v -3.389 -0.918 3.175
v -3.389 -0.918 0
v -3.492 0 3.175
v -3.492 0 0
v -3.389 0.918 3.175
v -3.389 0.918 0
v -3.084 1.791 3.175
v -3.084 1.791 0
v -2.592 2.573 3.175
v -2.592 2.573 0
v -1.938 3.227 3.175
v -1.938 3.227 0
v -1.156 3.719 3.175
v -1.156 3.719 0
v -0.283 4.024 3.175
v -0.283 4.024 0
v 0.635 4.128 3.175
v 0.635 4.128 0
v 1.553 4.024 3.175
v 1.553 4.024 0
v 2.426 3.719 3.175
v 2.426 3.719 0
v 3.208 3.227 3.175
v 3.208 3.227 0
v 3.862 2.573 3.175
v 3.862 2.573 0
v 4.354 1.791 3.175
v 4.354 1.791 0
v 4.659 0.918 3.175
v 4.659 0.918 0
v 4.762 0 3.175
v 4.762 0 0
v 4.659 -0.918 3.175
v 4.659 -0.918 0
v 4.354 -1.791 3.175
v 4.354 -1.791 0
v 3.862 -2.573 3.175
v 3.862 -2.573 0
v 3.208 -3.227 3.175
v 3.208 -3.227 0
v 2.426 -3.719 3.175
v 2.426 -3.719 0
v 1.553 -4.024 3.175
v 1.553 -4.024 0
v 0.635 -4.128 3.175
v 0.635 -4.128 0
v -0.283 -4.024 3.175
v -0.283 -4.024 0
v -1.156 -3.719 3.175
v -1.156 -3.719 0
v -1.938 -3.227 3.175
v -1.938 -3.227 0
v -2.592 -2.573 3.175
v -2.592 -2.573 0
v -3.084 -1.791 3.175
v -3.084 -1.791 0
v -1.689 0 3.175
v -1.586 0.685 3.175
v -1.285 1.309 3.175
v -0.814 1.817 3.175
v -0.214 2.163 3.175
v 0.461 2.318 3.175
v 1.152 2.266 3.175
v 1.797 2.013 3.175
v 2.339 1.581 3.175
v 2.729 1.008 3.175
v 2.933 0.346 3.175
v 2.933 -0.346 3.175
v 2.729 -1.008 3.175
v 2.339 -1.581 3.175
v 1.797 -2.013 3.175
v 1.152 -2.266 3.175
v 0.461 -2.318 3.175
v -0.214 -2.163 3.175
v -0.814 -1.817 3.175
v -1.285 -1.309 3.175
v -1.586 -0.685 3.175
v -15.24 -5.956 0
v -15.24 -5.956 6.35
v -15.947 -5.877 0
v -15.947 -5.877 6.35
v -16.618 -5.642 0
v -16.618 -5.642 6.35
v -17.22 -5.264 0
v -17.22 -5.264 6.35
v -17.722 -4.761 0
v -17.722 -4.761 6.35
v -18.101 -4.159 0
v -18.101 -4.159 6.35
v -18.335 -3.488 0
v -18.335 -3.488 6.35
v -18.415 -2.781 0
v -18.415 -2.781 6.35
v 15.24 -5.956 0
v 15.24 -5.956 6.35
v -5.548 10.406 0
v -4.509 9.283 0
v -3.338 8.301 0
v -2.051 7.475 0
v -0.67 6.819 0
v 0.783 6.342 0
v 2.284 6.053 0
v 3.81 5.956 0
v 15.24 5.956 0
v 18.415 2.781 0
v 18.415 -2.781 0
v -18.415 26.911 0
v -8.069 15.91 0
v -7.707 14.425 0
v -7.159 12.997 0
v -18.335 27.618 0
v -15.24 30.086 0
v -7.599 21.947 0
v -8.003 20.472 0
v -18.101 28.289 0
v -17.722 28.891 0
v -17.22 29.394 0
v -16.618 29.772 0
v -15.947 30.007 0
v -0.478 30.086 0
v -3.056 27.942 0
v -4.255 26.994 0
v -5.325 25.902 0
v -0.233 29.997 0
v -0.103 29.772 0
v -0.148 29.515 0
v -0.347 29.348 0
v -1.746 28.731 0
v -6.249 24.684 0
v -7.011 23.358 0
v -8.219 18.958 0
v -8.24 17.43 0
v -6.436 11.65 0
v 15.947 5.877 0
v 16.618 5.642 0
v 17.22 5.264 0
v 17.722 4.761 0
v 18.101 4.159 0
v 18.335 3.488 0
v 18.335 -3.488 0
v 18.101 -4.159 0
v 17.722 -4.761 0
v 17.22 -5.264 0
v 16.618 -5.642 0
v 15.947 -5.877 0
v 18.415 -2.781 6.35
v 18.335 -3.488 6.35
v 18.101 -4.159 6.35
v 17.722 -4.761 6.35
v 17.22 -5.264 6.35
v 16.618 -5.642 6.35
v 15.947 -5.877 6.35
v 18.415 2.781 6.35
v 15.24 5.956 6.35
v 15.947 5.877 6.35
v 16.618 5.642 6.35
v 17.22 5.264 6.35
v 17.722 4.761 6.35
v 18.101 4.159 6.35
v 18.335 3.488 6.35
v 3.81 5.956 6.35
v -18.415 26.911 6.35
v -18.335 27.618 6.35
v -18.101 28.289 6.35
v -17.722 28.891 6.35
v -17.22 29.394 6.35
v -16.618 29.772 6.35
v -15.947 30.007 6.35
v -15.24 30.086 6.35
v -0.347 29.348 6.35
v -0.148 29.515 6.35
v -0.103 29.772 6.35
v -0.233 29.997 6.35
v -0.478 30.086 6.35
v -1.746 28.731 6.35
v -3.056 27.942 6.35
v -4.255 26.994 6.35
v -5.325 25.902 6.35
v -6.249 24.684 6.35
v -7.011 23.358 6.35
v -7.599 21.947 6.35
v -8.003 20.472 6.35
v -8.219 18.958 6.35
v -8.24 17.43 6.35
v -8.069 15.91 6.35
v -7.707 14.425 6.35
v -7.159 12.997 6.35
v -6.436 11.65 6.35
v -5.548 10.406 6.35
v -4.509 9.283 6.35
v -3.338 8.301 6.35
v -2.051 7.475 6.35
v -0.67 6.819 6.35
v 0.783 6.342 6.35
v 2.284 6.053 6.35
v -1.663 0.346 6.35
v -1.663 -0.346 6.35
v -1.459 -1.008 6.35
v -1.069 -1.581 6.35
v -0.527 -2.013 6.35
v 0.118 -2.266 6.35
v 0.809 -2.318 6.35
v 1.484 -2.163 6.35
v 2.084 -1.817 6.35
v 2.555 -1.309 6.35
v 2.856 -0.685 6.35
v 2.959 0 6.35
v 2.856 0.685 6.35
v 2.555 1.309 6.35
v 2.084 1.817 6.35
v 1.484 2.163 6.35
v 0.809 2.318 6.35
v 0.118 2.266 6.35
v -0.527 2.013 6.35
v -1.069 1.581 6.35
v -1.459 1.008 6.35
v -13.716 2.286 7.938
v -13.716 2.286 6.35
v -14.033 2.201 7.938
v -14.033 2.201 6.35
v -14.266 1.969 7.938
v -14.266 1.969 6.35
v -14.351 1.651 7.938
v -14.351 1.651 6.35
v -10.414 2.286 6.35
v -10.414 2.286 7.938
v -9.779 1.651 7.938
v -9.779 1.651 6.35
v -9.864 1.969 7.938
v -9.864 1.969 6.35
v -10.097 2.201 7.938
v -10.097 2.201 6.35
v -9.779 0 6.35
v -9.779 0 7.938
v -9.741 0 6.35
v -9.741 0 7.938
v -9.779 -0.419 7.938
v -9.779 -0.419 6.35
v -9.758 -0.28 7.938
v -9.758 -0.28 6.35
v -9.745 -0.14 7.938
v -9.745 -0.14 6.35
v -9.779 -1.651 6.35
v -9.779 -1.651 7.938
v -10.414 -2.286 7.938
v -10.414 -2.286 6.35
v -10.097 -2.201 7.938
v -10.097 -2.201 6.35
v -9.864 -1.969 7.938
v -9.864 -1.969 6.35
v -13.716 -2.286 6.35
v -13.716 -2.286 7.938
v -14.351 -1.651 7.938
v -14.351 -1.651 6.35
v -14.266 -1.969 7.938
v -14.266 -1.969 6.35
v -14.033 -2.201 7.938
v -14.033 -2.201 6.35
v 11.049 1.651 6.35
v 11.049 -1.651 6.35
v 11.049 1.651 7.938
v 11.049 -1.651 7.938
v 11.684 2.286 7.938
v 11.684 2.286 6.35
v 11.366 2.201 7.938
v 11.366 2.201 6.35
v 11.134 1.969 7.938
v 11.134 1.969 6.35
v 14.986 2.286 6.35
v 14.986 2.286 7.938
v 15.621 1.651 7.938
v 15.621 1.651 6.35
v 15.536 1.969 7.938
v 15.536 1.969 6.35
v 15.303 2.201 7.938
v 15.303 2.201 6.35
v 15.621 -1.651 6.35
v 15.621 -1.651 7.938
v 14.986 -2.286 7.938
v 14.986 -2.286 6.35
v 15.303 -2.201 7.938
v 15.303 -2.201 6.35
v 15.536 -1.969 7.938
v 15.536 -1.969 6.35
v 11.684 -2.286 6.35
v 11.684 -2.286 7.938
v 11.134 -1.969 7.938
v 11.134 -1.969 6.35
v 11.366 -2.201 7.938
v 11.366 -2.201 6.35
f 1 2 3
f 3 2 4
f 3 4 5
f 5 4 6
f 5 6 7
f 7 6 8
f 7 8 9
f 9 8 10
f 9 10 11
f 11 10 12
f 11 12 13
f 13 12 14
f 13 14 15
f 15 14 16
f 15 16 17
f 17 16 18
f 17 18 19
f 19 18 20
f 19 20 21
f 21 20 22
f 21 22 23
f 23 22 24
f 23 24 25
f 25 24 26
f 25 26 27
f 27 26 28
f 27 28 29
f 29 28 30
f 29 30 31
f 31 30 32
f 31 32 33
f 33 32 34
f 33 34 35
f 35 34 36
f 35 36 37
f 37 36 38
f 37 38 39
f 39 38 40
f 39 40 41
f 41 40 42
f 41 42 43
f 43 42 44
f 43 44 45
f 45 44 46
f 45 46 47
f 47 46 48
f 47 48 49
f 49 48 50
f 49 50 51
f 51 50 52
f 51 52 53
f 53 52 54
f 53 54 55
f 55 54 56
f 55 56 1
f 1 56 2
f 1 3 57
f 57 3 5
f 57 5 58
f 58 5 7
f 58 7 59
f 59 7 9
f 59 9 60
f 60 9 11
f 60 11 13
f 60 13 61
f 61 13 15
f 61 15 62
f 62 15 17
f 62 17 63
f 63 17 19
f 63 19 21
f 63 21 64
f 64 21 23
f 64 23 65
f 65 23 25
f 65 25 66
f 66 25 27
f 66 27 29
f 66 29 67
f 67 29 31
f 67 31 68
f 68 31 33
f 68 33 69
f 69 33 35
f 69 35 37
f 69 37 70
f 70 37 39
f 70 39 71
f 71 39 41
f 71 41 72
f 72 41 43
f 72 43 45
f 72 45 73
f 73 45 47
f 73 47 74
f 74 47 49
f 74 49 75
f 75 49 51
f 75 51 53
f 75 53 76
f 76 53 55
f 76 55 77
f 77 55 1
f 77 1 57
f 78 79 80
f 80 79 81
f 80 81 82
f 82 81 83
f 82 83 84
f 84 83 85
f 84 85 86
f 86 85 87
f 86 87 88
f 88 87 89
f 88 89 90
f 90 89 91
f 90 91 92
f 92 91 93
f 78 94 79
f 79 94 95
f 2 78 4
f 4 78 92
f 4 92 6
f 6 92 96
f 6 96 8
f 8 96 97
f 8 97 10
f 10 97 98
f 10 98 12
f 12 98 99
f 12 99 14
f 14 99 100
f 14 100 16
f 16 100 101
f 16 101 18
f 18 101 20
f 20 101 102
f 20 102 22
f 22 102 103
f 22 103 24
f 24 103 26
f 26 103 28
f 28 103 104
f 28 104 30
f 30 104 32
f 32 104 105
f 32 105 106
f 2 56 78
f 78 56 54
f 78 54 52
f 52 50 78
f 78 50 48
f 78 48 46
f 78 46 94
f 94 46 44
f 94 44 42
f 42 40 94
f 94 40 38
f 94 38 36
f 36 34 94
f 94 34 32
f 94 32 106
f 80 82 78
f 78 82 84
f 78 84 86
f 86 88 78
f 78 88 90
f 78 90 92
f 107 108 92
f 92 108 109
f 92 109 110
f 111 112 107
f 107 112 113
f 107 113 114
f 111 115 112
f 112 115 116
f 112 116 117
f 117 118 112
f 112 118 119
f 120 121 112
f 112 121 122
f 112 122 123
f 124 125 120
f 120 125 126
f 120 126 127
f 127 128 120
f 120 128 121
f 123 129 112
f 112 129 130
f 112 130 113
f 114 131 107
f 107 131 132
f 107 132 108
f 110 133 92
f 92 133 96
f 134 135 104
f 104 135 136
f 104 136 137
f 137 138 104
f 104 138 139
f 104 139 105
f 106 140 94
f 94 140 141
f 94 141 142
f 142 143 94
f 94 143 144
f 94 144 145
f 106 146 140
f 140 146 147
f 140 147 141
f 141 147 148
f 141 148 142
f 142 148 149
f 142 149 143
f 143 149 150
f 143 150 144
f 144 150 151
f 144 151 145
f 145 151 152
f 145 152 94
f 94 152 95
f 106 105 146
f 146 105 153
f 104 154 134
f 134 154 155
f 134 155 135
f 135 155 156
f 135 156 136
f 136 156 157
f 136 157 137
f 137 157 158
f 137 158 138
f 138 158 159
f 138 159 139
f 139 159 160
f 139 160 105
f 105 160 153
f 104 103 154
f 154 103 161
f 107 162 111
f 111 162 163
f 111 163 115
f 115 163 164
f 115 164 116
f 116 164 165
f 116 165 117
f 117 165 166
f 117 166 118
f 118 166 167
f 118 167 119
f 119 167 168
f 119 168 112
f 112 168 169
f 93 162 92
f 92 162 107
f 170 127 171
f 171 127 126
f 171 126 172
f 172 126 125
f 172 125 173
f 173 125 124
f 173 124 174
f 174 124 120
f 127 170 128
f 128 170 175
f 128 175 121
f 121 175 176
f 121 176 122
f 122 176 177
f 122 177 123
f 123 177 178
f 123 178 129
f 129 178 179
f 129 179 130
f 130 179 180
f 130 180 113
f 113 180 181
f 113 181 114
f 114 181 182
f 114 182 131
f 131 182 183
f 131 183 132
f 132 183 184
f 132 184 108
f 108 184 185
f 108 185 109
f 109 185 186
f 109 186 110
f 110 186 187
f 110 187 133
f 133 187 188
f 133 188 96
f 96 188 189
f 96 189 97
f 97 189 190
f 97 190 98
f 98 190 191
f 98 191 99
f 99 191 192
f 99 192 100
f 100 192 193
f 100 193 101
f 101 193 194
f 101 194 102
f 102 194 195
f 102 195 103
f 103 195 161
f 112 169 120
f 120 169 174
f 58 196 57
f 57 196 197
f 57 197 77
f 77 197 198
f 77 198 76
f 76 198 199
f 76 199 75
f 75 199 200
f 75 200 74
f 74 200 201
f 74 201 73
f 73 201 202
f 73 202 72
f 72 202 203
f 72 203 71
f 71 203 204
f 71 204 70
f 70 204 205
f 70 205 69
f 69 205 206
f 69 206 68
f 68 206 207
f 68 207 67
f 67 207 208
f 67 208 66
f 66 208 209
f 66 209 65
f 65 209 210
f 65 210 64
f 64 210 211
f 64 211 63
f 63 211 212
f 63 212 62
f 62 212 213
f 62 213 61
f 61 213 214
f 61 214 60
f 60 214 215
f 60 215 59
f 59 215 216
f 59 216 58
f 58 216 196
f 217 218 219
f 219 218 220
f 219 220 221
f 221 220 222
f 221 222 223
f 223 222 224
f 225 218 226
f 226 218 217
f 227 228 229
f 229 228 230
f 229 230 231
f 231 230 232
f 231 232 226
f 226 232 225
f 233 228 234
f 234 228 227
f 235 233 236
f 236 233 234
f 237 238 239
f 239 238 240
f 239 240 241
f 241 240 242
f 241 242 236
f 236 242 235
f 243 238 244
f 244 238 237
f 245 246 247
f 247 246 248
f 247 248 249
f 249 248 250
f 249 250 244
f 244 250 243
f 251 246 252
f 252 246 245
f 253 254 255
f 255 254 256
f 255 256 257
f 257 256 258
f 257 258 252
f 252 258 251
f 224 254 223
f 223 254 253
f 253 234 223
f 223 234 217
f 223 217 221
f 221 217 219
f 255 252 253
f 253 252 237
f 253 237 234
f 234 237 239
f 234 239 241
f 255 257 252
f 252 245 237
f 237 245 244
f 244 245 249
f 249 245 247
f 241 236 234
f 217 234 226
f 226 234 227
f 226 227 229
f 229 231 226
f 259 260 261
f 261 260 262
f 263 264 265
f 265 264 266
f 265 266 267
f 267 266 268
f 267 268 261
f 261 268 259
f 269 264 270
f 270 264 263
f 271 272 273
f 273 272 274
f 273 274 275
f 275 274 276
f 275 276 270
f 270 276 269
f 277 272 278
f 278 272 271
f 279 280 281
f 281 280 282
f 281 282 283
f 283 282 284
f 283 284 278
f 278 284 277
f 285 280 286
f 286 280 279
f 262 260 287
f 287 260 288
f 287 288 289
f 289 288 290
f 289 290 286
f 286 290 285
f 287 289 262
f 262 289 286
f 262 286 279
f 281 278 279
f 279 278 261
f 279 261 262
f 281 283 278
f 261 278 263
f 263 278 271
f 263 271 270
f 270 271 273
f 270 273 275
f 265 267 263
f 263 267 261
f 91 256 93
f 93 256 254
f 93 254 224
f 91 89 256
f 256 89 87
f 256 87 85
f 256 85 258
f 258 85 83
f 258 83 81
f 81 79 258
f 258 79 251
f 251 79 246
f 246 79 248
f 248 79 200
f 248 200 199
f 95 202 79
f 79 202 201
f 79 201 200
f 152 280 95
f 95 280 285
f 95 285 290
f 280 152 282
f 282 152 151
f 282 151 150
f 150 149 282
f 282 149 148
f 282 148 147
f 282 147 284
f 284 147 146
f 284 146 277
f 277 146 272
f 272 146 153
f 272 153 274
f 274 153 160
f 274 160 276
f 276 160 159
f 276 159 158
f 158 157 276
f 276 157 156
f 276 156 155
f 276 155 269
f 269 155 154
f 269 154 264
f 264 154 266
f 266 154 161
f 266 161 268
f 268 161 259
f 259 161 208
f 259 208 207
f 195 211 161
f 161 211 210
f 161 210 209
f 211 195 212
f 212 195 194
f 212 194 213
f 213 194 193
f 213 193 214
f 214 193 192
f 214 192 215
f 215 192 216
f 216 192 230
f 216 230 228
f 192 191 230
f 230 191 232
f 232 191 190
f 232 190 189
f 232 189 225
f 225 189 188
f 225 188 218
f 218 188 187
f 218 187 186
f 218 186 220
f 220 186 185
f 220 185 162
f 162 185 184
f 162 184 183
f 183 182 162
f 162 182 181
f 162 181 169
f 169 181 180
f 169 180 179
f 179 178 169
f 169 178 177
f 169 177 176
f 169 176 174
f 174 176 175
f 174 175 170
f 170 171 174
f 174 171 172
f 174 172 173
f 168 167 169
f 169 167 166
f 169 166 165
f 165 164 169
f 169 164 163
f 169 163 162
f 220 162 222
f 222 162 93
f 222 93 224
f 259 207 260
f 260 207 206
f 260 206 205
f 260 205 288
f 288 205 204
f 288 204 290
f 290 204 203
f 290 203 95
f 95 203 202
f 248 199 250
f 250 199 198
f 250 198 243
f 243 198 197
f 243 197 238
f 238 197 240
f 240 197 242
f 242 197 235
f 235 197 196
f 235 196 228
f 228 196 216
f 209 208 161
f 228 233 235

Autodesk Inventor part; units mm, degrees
ref_plane "YZ Plane" through (0, 0, 0) normal (1, 0, 0) x (0, 1, 0)
ref_plane "XZ Plane" through (0, 0, 0) normal (0, 1, 0) x (-1, 0, 0)
ref_plane "XY Plane" through (0, 0, 0) normal (0, 0, 1) x (1, 0, 0)
sketch "Sketch1" plane through (0, 0, 0) normal (0, 0, 1) x (1, 0, 0)
  line L0 (-18.415, 5.9563) -> (18.415, 5.9563)
  line L1 (18.415, 5.9563) -> (18.415, -5.9563)
  line L2 (18.415, -5.9563) -> (-18.415, -5.9563)
  line L3 (-18.415, -5.9563) -> (-18.415, 5.9563)
  line L4 (-18.415, 5.9563) -> (18.415, -5.9563) construction
  line L5 (18.415, 5.9563) -> (-18.415, -5.9563) construction
  point P0 (0, 0)
  dimension "d0" = 36.83
  dimension "d1" = 11.9126
extrude "Extrusion1" add sketch "Sketch1" along normal blind 6.35
sketch "Sketch2" plane through (0, 0, 6.35) normal (0, 0, 1) x (1, 0, 0)
  line L0 (-18.415, 5.9563) -> (-18.415, -5.9563) projected
  line L1 (-18.415, 0) -> (18.415, 0)
  line L2 (18.415, -5.9563) -> (18.415, 5.9563) projected
  line L3 (-18.415, 0) -> (-20.6375, 0)
  line L4 (-18.415, 0) -> (-12.065, 0)
  circle A0 centre (-12.065, 0) radius 2.3241
  circle A1 centre (0.635, 0) radius 2.3241
  circle A2 centre (13.335, 0) radius 2.3241
  line L5 (-13.716, 2.286) -> (-10.414, 2.286)
  line L6 (-9.779, 1.651) -> (-9.779, -1.651)
  line L7 (-10.414, -2.286) -> (-13.716, -2.286)
  line L8 (-14.351, -1.651) -> (-14.351, 1.651)
  line L9 (-14.351, 2.286) -> (-9.779, -2.286) construction
  line L10 (-9.779, 2.286) -> (-14.351, -2.286) construction
  line L11 (11.684, 2.286) -> (14.986, 2.286)
  line L12 (15.621, 1.651) -> (15.621, -1.651)
  line L13 (14.986, -2.286) -> (11.684, -2.286)
  line L14 (11.049, -1.651) -> (11.049, 1.651)
  line L15 (11.049, 2.286) -> (15.621, -2.286) construction
  line L16 (15.621, 2.286) -> (11.049, -2.286) construction
  arc A3 (-13.716, 2.286) -> (-14.351, 1.651) centre (-13.716, 1.651) ccw
  arc A4 (-9.779, 1.651) -> (-10.414, 2.286) centre (-10.414, 1.651) ccw
  arc A5 (-10.414, -2.286) -> (-9.779, -1.651) centre (-10.414, -1.651) ccw
  arc A6 (-14.351, -1.651) -> (-13.716, -2.286) centre (-13.716, -1.651) ccw
  arc A7 (11.684, 2.286) -> (11.049, 1.651) centre (11.684, 1.651) ccw
  arc A8 (15.621, 1.651) -> (14.986, 2.286) centre (14.986, 1.651) ccw
  arc A9 (14.986, -2.286) -> (15.621, -1.651) centre (14.986, -1.651) ccw
  arc A10 (11.049, -1.651) -> (11.684, -2.286) centre (11.684, -1.651) ccw
  point P0 (0, 0)
  point P1 (-9.779, -0.4191)
  point P2 (-9.7409, 0)
  point P3 (-9.779, 0)
  dimension "d5" = 6.35
  dimension "d6" = 4.6482
  dimension "d9" = 12.7
  dimension "d16" = 4.572
  dimension "d17" = 4.572
  dimension "d18" = 4.572
  dimension "d19" = 4.572
  dimension "d20" = 0.635
extrude "Extrusion2" add sketch "Sketch2" along normal blind 1.5875 contours L8 A0 L5 L6 L1 | L1 L6 A0 L7 L8 | L8 A3 L5 A0 | A0 L7 A6 L8 | L1 A0 L6 | L5 A4 L6 A0 | A0 L6 A5 L7 | L14 A2 L11 L12 L1 | L1 L12 A2 L13 L14 | L14 A7 L11 A2 | A2 L13 A10 L14 | A2 L11 A8 L12 | L12 A9 L13 A2 picked at (-9.772, -0.2331)
extrude "Extrusion3" cut sketch "Sketch2" against normal through all contours A1 L1 | L1 A1
sketch "Sketch9" plane through (-18.415, 5.9563, 0) normal (0, 1, 0) x (1, 0, 0)
  line L0 (0, 0) -> (36.83, 0) projected
  line L1 (0, -6.35) -> (36.83, -6.35) projected
  line L2 (0, 0) -> (22.225, 0)
  line L3 (22.225, 0) -> (22.225, -6.35)
  line L4 (22.225, -6.35) -> (0, -6.35)
  line L5 (0, -6.35) -> (0, 0)
  point P0 (18.415, 0)
  dimension "d45" = 22.225
extrude "Extrusion9" add sketch "Sketch9" along normal blind 24.13
sketch "Sketch10" plane through (0, 0, 0) normal (0, 0, -1) x (-1, 0, 0)
  line L0 (-18.415, 5.9563) -> (-3.81, 5.9563) projected
  line L1 (18.415, 30.0863) -> (-3.81, 30.0863) projected
  arc A0 (-3.81, 5.9563) -> (-3.81, 30.0863) centre (-3.81, 18.0213) ccw
  line L2 (-3.81, 30.0863) -> (-3.81, 5.9563)
  point P0 (0, 0)
extrude "Extrusion10" cut sketch "Sketch10" against normal blind 19.05
fillet "Fillet7" radius 0.381 1 edges at (3.81, 30.0863, 3.175)
fillet "Fillet8" radius 3.175 4 edges at (-18.415, 30.0863, 3.175) (18.415, 5.9563, 3.175) (18.415, -5.9563, 3.175) (-18.415, -5.9563, 3.175)
sketch "Sketch11" plane through (0, 0, 0) normal (0, 0, -1) x (-1, 0, 0)
  circle A0 centre (-0.635, 0) radius 2.3241 projected
  circle A1 centre (-0.635, 0) radius 4.1275
  point P0 (0, 0)
  dimension "d52" = 8.255
extrude "Extrusion11" cut sketch "Sketch11" against normal blind 3.175
properties part number "piston holder for goal rush"
